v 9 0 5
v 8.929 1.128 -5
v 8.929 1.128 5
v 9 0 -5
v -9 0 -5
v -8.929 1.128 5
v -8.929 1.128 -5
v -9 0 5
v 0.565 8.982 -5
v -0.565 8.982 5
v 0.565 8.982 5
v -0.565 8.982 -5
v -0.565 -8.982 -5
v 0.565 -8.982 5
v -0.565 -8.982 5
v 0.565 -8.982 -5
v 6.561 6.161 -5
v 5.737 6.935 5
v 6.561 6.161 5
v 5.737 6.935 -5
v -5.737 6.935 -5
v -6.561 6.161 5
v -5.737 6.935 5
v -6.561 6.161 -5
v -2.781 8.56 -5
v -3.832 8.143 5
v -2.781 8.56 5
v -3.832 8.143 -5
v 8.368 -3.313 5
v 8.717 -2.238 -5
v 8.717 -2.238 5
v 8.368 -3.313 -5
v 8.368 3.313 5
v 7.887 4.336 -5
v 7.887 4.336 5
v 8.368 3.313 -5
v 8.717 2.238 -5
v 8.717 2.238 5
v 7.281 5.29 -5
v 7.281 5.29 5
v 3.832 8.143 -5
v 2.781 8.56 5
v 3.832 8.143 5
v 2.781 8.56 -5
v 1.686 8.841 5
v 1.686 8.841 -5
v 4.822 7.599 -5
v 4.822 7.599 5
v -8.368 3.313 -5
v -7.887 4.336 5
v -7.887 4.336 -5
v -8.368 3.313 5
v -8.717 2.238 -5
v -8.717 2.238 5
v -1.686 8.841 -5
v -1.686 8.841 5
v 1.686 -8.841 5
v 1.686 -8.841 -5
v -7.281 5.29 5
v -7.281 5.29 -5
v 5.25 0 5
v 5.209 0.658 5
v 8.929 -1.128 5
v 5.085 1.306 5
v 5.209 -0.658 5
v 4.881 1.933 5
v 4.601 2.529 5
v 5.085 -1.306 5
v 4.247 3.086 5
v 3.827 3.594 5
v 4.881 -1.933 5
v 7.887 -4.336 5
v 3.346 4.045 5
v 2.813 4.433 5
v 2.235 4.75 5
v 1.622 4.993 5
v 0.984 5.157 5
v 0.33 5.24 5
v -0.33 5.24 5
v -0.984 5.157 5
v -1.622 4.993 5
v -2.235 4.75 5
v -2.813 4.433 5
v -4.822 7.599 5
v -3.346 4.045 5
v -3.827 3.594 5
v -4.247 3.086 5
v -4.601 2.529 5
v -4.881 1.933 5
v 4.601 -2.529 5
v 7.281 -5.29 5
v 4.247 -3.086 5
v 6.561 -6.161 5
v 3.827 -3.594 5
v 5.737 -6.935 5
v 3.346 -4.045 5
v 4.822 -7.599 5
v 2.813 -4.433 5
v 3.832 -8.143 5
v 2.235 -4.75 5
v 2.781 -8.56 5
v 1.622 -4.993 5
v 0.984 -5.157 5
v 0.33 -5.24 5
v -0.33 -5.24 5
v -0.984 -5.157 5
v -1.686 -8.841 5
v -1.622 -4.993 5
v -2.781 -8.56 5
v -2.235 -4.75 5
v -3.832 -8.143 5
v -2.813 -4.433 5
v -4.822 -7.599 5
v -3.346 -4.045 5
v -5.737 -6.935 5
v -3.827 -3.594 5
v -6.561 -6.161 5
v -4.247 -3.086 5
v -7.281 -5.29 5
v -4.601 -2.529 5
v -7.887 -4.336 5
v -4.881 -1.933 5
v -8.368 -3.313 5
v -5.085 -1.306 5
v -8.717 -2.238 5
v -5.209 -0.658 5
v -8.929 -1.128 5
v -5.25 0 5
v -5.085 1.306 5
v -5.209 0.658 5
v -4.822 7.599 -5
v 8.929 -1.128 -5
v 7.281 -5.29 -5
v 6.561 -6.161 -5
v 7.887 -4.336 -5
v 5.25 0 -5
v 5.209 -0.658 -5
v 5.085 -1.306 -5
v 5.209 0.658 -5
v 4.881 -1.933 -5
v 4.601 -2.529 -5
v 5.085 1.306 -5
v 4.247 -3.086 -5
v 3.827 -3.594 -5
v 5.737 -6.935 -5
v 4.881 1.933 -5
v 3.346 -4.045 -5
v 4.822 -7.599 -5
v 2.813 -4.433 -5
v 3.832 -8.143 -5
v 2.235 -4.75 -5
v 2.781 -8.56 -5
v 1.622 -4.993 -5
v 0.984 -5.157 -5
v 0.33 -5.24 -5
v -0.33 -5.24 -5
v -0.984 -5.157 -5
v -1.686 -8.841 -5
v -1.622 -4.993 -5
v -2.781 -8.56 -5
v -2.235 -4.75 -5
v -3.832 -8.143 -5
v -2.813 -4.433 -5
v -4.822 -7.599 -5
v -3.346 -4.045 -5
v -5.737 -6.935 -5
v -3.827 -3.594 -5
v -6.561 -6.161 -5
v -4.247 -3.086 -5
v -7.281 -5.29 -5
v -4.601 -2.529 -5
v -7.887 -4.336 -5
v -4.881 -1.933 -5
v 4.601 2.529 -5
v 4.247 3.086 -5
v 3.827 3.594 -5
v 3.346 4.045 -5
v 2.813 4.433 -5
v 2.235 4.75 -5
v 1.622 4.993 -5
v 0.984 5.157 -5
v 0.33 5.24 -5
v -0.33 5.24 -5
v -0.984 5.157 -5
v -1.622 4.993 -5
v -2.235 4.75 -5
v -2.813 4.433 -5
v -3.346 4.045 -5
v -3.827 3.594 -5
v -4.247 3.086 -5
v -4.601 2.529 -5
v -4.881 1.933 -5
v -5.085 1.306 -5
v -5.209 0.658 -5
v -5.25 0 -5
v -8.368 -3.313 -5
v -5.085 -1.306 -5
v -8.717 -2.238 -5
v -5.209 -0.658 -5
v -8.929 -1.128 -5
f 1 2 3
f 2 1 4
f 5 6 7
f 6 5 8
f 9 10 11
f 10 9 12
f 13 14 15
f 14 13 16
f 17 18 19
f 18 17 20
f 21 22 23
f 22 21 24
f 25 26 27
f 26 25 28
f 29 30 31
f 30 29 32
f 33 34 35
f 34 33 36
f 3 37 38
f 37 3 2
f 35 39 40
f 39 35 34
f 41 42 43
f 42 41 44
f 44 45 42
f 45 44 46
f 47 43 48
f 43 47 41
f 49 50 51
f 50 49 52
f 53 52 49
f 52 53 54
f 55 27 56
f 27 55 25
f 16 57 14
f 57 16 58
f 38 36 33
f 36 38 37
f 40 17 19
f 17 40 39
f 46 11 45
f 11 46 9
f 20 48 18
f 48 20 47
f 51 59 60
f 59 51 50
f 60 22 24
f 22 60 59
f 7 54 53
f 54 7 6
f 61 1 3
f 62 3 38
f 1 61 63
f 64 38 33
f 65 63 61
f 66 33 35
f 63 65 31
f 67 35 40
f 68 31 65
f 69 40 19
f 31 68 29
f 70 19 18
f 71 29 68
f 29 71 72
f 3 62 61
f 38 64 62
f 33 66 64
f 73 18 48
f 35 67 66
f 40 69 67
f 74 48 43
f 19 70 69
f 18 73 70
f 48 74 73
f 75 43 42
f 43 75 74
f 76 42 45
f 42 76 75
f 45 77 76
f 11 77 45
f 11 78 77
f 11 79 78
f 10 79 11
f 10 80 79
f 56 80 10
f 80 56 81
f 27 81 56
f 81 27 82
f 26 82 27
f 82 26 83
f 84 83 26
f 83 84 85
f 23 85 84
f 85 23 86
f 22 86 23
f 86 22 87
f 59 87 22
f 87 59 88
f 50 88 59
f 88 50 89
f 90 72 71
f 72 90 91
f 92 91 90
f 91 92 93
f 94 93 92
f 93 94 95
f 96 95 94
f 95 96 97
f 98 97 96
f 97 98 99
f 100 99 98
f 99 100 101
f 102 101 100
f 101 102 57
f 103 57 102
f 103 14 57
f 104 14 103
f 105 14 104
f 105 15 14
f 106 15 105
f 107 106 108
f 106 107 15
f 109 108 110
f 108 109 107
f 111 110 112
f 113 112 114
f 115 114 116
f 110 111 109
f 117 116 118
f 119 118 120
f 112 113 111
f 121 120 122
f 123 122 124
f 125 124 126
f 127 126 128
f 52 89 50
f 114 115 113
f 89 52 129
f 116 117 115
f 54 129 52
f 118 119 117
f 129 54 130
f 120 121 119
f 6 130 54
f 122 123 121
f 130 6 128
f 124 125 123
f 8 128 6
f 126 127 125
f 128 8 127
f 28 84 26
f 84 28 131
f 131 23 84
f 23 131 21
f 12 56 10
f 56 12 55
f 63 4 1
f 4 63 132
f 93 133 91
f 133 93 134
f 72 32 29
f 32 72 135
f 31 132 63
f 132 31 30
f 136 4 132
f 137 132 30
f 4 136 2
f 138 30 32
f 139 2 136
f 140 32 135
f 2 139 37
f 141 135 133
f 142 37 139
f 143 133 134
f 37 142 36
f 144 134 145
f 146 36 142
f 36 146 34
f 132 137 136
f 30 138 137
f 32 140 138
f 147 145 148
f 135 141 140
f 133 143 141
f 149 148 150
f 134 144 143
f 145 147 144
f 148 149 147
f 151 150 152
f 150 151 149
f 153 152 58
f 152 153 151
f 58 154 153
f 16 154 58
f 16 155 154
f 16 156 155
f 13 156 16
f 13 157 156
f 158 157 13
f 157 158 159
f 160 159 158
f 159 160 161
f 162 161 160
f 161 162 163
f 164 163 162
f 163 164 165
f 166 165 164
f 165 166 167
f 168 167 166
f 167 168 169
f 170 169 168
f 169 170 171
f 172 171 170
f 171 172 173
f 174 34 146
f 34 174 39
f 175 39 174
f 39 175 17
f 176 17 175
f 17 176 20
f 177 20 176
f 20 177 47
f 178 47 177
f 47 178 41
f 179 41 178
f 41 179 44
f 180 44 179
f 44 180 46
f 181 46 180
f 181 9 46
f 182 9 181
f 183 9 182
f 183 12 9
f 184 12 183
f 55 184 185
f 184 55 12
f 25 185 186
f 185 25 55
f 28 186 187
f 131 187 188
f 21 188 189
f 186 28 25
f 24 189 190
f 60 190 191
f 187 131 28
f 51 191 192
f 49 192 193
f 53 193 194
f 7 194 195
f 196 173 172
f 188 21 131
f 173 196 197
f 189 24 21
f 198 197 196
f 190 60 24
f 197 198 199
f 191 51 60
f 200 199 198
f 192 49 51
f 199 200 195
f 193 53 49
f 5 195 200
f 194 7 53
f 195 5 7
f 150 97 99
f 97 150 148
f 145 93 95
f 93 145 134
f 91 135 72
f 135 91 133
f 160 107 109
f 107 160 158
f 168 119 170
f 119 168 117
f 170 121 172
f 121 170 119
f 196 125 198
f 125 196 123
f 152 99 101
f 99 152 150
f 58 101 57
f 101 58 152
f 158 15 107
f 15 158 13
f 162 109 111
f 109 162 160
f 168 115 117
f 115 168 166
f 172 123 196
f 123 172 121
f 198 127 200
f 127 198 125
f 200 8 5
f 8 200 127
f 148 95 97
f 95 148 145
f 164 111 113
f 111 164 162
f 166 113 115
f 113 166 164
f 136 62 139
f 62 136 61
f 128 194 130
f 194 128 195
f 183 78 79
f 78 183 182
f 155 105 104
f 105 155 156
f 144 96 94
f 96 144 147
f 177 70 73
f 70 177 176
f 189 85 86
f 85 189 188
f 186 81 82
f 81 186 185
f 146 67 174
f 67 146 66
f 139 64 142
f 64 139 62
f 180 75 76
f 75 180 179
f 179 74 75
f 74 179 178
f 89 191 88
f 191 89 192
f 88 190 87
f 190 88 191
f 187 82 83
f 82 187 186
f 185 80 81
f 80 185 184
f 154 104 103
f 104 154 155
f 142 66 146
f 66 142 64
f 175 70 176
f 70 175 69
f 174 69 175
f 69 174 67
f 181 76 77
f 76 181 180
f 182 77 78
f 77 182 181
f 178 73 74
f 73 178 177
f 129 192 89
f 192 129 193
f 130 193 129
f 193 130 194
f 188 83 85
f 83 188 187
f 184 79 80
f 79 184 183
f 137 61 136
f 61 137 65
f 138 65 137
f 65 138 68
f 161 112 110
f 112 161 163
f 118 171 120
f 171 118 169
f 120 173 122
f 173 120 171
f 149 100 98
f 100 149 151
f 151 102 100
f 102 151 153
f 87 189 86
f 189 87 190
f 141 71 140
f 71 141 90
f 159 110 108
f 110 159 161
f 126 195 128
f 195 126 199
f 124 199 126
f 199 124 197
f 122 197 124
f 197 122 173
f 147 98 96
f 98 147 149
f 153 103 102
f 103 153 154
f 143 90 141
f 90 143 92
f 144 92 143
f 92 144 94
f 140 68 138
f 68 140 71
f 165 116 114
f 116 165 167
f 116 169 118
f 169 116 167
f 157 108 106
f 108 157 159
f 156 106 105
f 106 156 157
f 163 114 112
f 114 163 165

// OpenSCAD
$fn = 50;


difference() {
	union() {
		translate(v = [0, 0, -5.0000000000]) {
			cylinder(h = 10, r = 9.0000000000);
		}
	}
	union() {
		translate(v = [0, 0, -100.0000000000]) {
			cylinder(h = 200, r = 5.2500000000);
		}
	}
}
